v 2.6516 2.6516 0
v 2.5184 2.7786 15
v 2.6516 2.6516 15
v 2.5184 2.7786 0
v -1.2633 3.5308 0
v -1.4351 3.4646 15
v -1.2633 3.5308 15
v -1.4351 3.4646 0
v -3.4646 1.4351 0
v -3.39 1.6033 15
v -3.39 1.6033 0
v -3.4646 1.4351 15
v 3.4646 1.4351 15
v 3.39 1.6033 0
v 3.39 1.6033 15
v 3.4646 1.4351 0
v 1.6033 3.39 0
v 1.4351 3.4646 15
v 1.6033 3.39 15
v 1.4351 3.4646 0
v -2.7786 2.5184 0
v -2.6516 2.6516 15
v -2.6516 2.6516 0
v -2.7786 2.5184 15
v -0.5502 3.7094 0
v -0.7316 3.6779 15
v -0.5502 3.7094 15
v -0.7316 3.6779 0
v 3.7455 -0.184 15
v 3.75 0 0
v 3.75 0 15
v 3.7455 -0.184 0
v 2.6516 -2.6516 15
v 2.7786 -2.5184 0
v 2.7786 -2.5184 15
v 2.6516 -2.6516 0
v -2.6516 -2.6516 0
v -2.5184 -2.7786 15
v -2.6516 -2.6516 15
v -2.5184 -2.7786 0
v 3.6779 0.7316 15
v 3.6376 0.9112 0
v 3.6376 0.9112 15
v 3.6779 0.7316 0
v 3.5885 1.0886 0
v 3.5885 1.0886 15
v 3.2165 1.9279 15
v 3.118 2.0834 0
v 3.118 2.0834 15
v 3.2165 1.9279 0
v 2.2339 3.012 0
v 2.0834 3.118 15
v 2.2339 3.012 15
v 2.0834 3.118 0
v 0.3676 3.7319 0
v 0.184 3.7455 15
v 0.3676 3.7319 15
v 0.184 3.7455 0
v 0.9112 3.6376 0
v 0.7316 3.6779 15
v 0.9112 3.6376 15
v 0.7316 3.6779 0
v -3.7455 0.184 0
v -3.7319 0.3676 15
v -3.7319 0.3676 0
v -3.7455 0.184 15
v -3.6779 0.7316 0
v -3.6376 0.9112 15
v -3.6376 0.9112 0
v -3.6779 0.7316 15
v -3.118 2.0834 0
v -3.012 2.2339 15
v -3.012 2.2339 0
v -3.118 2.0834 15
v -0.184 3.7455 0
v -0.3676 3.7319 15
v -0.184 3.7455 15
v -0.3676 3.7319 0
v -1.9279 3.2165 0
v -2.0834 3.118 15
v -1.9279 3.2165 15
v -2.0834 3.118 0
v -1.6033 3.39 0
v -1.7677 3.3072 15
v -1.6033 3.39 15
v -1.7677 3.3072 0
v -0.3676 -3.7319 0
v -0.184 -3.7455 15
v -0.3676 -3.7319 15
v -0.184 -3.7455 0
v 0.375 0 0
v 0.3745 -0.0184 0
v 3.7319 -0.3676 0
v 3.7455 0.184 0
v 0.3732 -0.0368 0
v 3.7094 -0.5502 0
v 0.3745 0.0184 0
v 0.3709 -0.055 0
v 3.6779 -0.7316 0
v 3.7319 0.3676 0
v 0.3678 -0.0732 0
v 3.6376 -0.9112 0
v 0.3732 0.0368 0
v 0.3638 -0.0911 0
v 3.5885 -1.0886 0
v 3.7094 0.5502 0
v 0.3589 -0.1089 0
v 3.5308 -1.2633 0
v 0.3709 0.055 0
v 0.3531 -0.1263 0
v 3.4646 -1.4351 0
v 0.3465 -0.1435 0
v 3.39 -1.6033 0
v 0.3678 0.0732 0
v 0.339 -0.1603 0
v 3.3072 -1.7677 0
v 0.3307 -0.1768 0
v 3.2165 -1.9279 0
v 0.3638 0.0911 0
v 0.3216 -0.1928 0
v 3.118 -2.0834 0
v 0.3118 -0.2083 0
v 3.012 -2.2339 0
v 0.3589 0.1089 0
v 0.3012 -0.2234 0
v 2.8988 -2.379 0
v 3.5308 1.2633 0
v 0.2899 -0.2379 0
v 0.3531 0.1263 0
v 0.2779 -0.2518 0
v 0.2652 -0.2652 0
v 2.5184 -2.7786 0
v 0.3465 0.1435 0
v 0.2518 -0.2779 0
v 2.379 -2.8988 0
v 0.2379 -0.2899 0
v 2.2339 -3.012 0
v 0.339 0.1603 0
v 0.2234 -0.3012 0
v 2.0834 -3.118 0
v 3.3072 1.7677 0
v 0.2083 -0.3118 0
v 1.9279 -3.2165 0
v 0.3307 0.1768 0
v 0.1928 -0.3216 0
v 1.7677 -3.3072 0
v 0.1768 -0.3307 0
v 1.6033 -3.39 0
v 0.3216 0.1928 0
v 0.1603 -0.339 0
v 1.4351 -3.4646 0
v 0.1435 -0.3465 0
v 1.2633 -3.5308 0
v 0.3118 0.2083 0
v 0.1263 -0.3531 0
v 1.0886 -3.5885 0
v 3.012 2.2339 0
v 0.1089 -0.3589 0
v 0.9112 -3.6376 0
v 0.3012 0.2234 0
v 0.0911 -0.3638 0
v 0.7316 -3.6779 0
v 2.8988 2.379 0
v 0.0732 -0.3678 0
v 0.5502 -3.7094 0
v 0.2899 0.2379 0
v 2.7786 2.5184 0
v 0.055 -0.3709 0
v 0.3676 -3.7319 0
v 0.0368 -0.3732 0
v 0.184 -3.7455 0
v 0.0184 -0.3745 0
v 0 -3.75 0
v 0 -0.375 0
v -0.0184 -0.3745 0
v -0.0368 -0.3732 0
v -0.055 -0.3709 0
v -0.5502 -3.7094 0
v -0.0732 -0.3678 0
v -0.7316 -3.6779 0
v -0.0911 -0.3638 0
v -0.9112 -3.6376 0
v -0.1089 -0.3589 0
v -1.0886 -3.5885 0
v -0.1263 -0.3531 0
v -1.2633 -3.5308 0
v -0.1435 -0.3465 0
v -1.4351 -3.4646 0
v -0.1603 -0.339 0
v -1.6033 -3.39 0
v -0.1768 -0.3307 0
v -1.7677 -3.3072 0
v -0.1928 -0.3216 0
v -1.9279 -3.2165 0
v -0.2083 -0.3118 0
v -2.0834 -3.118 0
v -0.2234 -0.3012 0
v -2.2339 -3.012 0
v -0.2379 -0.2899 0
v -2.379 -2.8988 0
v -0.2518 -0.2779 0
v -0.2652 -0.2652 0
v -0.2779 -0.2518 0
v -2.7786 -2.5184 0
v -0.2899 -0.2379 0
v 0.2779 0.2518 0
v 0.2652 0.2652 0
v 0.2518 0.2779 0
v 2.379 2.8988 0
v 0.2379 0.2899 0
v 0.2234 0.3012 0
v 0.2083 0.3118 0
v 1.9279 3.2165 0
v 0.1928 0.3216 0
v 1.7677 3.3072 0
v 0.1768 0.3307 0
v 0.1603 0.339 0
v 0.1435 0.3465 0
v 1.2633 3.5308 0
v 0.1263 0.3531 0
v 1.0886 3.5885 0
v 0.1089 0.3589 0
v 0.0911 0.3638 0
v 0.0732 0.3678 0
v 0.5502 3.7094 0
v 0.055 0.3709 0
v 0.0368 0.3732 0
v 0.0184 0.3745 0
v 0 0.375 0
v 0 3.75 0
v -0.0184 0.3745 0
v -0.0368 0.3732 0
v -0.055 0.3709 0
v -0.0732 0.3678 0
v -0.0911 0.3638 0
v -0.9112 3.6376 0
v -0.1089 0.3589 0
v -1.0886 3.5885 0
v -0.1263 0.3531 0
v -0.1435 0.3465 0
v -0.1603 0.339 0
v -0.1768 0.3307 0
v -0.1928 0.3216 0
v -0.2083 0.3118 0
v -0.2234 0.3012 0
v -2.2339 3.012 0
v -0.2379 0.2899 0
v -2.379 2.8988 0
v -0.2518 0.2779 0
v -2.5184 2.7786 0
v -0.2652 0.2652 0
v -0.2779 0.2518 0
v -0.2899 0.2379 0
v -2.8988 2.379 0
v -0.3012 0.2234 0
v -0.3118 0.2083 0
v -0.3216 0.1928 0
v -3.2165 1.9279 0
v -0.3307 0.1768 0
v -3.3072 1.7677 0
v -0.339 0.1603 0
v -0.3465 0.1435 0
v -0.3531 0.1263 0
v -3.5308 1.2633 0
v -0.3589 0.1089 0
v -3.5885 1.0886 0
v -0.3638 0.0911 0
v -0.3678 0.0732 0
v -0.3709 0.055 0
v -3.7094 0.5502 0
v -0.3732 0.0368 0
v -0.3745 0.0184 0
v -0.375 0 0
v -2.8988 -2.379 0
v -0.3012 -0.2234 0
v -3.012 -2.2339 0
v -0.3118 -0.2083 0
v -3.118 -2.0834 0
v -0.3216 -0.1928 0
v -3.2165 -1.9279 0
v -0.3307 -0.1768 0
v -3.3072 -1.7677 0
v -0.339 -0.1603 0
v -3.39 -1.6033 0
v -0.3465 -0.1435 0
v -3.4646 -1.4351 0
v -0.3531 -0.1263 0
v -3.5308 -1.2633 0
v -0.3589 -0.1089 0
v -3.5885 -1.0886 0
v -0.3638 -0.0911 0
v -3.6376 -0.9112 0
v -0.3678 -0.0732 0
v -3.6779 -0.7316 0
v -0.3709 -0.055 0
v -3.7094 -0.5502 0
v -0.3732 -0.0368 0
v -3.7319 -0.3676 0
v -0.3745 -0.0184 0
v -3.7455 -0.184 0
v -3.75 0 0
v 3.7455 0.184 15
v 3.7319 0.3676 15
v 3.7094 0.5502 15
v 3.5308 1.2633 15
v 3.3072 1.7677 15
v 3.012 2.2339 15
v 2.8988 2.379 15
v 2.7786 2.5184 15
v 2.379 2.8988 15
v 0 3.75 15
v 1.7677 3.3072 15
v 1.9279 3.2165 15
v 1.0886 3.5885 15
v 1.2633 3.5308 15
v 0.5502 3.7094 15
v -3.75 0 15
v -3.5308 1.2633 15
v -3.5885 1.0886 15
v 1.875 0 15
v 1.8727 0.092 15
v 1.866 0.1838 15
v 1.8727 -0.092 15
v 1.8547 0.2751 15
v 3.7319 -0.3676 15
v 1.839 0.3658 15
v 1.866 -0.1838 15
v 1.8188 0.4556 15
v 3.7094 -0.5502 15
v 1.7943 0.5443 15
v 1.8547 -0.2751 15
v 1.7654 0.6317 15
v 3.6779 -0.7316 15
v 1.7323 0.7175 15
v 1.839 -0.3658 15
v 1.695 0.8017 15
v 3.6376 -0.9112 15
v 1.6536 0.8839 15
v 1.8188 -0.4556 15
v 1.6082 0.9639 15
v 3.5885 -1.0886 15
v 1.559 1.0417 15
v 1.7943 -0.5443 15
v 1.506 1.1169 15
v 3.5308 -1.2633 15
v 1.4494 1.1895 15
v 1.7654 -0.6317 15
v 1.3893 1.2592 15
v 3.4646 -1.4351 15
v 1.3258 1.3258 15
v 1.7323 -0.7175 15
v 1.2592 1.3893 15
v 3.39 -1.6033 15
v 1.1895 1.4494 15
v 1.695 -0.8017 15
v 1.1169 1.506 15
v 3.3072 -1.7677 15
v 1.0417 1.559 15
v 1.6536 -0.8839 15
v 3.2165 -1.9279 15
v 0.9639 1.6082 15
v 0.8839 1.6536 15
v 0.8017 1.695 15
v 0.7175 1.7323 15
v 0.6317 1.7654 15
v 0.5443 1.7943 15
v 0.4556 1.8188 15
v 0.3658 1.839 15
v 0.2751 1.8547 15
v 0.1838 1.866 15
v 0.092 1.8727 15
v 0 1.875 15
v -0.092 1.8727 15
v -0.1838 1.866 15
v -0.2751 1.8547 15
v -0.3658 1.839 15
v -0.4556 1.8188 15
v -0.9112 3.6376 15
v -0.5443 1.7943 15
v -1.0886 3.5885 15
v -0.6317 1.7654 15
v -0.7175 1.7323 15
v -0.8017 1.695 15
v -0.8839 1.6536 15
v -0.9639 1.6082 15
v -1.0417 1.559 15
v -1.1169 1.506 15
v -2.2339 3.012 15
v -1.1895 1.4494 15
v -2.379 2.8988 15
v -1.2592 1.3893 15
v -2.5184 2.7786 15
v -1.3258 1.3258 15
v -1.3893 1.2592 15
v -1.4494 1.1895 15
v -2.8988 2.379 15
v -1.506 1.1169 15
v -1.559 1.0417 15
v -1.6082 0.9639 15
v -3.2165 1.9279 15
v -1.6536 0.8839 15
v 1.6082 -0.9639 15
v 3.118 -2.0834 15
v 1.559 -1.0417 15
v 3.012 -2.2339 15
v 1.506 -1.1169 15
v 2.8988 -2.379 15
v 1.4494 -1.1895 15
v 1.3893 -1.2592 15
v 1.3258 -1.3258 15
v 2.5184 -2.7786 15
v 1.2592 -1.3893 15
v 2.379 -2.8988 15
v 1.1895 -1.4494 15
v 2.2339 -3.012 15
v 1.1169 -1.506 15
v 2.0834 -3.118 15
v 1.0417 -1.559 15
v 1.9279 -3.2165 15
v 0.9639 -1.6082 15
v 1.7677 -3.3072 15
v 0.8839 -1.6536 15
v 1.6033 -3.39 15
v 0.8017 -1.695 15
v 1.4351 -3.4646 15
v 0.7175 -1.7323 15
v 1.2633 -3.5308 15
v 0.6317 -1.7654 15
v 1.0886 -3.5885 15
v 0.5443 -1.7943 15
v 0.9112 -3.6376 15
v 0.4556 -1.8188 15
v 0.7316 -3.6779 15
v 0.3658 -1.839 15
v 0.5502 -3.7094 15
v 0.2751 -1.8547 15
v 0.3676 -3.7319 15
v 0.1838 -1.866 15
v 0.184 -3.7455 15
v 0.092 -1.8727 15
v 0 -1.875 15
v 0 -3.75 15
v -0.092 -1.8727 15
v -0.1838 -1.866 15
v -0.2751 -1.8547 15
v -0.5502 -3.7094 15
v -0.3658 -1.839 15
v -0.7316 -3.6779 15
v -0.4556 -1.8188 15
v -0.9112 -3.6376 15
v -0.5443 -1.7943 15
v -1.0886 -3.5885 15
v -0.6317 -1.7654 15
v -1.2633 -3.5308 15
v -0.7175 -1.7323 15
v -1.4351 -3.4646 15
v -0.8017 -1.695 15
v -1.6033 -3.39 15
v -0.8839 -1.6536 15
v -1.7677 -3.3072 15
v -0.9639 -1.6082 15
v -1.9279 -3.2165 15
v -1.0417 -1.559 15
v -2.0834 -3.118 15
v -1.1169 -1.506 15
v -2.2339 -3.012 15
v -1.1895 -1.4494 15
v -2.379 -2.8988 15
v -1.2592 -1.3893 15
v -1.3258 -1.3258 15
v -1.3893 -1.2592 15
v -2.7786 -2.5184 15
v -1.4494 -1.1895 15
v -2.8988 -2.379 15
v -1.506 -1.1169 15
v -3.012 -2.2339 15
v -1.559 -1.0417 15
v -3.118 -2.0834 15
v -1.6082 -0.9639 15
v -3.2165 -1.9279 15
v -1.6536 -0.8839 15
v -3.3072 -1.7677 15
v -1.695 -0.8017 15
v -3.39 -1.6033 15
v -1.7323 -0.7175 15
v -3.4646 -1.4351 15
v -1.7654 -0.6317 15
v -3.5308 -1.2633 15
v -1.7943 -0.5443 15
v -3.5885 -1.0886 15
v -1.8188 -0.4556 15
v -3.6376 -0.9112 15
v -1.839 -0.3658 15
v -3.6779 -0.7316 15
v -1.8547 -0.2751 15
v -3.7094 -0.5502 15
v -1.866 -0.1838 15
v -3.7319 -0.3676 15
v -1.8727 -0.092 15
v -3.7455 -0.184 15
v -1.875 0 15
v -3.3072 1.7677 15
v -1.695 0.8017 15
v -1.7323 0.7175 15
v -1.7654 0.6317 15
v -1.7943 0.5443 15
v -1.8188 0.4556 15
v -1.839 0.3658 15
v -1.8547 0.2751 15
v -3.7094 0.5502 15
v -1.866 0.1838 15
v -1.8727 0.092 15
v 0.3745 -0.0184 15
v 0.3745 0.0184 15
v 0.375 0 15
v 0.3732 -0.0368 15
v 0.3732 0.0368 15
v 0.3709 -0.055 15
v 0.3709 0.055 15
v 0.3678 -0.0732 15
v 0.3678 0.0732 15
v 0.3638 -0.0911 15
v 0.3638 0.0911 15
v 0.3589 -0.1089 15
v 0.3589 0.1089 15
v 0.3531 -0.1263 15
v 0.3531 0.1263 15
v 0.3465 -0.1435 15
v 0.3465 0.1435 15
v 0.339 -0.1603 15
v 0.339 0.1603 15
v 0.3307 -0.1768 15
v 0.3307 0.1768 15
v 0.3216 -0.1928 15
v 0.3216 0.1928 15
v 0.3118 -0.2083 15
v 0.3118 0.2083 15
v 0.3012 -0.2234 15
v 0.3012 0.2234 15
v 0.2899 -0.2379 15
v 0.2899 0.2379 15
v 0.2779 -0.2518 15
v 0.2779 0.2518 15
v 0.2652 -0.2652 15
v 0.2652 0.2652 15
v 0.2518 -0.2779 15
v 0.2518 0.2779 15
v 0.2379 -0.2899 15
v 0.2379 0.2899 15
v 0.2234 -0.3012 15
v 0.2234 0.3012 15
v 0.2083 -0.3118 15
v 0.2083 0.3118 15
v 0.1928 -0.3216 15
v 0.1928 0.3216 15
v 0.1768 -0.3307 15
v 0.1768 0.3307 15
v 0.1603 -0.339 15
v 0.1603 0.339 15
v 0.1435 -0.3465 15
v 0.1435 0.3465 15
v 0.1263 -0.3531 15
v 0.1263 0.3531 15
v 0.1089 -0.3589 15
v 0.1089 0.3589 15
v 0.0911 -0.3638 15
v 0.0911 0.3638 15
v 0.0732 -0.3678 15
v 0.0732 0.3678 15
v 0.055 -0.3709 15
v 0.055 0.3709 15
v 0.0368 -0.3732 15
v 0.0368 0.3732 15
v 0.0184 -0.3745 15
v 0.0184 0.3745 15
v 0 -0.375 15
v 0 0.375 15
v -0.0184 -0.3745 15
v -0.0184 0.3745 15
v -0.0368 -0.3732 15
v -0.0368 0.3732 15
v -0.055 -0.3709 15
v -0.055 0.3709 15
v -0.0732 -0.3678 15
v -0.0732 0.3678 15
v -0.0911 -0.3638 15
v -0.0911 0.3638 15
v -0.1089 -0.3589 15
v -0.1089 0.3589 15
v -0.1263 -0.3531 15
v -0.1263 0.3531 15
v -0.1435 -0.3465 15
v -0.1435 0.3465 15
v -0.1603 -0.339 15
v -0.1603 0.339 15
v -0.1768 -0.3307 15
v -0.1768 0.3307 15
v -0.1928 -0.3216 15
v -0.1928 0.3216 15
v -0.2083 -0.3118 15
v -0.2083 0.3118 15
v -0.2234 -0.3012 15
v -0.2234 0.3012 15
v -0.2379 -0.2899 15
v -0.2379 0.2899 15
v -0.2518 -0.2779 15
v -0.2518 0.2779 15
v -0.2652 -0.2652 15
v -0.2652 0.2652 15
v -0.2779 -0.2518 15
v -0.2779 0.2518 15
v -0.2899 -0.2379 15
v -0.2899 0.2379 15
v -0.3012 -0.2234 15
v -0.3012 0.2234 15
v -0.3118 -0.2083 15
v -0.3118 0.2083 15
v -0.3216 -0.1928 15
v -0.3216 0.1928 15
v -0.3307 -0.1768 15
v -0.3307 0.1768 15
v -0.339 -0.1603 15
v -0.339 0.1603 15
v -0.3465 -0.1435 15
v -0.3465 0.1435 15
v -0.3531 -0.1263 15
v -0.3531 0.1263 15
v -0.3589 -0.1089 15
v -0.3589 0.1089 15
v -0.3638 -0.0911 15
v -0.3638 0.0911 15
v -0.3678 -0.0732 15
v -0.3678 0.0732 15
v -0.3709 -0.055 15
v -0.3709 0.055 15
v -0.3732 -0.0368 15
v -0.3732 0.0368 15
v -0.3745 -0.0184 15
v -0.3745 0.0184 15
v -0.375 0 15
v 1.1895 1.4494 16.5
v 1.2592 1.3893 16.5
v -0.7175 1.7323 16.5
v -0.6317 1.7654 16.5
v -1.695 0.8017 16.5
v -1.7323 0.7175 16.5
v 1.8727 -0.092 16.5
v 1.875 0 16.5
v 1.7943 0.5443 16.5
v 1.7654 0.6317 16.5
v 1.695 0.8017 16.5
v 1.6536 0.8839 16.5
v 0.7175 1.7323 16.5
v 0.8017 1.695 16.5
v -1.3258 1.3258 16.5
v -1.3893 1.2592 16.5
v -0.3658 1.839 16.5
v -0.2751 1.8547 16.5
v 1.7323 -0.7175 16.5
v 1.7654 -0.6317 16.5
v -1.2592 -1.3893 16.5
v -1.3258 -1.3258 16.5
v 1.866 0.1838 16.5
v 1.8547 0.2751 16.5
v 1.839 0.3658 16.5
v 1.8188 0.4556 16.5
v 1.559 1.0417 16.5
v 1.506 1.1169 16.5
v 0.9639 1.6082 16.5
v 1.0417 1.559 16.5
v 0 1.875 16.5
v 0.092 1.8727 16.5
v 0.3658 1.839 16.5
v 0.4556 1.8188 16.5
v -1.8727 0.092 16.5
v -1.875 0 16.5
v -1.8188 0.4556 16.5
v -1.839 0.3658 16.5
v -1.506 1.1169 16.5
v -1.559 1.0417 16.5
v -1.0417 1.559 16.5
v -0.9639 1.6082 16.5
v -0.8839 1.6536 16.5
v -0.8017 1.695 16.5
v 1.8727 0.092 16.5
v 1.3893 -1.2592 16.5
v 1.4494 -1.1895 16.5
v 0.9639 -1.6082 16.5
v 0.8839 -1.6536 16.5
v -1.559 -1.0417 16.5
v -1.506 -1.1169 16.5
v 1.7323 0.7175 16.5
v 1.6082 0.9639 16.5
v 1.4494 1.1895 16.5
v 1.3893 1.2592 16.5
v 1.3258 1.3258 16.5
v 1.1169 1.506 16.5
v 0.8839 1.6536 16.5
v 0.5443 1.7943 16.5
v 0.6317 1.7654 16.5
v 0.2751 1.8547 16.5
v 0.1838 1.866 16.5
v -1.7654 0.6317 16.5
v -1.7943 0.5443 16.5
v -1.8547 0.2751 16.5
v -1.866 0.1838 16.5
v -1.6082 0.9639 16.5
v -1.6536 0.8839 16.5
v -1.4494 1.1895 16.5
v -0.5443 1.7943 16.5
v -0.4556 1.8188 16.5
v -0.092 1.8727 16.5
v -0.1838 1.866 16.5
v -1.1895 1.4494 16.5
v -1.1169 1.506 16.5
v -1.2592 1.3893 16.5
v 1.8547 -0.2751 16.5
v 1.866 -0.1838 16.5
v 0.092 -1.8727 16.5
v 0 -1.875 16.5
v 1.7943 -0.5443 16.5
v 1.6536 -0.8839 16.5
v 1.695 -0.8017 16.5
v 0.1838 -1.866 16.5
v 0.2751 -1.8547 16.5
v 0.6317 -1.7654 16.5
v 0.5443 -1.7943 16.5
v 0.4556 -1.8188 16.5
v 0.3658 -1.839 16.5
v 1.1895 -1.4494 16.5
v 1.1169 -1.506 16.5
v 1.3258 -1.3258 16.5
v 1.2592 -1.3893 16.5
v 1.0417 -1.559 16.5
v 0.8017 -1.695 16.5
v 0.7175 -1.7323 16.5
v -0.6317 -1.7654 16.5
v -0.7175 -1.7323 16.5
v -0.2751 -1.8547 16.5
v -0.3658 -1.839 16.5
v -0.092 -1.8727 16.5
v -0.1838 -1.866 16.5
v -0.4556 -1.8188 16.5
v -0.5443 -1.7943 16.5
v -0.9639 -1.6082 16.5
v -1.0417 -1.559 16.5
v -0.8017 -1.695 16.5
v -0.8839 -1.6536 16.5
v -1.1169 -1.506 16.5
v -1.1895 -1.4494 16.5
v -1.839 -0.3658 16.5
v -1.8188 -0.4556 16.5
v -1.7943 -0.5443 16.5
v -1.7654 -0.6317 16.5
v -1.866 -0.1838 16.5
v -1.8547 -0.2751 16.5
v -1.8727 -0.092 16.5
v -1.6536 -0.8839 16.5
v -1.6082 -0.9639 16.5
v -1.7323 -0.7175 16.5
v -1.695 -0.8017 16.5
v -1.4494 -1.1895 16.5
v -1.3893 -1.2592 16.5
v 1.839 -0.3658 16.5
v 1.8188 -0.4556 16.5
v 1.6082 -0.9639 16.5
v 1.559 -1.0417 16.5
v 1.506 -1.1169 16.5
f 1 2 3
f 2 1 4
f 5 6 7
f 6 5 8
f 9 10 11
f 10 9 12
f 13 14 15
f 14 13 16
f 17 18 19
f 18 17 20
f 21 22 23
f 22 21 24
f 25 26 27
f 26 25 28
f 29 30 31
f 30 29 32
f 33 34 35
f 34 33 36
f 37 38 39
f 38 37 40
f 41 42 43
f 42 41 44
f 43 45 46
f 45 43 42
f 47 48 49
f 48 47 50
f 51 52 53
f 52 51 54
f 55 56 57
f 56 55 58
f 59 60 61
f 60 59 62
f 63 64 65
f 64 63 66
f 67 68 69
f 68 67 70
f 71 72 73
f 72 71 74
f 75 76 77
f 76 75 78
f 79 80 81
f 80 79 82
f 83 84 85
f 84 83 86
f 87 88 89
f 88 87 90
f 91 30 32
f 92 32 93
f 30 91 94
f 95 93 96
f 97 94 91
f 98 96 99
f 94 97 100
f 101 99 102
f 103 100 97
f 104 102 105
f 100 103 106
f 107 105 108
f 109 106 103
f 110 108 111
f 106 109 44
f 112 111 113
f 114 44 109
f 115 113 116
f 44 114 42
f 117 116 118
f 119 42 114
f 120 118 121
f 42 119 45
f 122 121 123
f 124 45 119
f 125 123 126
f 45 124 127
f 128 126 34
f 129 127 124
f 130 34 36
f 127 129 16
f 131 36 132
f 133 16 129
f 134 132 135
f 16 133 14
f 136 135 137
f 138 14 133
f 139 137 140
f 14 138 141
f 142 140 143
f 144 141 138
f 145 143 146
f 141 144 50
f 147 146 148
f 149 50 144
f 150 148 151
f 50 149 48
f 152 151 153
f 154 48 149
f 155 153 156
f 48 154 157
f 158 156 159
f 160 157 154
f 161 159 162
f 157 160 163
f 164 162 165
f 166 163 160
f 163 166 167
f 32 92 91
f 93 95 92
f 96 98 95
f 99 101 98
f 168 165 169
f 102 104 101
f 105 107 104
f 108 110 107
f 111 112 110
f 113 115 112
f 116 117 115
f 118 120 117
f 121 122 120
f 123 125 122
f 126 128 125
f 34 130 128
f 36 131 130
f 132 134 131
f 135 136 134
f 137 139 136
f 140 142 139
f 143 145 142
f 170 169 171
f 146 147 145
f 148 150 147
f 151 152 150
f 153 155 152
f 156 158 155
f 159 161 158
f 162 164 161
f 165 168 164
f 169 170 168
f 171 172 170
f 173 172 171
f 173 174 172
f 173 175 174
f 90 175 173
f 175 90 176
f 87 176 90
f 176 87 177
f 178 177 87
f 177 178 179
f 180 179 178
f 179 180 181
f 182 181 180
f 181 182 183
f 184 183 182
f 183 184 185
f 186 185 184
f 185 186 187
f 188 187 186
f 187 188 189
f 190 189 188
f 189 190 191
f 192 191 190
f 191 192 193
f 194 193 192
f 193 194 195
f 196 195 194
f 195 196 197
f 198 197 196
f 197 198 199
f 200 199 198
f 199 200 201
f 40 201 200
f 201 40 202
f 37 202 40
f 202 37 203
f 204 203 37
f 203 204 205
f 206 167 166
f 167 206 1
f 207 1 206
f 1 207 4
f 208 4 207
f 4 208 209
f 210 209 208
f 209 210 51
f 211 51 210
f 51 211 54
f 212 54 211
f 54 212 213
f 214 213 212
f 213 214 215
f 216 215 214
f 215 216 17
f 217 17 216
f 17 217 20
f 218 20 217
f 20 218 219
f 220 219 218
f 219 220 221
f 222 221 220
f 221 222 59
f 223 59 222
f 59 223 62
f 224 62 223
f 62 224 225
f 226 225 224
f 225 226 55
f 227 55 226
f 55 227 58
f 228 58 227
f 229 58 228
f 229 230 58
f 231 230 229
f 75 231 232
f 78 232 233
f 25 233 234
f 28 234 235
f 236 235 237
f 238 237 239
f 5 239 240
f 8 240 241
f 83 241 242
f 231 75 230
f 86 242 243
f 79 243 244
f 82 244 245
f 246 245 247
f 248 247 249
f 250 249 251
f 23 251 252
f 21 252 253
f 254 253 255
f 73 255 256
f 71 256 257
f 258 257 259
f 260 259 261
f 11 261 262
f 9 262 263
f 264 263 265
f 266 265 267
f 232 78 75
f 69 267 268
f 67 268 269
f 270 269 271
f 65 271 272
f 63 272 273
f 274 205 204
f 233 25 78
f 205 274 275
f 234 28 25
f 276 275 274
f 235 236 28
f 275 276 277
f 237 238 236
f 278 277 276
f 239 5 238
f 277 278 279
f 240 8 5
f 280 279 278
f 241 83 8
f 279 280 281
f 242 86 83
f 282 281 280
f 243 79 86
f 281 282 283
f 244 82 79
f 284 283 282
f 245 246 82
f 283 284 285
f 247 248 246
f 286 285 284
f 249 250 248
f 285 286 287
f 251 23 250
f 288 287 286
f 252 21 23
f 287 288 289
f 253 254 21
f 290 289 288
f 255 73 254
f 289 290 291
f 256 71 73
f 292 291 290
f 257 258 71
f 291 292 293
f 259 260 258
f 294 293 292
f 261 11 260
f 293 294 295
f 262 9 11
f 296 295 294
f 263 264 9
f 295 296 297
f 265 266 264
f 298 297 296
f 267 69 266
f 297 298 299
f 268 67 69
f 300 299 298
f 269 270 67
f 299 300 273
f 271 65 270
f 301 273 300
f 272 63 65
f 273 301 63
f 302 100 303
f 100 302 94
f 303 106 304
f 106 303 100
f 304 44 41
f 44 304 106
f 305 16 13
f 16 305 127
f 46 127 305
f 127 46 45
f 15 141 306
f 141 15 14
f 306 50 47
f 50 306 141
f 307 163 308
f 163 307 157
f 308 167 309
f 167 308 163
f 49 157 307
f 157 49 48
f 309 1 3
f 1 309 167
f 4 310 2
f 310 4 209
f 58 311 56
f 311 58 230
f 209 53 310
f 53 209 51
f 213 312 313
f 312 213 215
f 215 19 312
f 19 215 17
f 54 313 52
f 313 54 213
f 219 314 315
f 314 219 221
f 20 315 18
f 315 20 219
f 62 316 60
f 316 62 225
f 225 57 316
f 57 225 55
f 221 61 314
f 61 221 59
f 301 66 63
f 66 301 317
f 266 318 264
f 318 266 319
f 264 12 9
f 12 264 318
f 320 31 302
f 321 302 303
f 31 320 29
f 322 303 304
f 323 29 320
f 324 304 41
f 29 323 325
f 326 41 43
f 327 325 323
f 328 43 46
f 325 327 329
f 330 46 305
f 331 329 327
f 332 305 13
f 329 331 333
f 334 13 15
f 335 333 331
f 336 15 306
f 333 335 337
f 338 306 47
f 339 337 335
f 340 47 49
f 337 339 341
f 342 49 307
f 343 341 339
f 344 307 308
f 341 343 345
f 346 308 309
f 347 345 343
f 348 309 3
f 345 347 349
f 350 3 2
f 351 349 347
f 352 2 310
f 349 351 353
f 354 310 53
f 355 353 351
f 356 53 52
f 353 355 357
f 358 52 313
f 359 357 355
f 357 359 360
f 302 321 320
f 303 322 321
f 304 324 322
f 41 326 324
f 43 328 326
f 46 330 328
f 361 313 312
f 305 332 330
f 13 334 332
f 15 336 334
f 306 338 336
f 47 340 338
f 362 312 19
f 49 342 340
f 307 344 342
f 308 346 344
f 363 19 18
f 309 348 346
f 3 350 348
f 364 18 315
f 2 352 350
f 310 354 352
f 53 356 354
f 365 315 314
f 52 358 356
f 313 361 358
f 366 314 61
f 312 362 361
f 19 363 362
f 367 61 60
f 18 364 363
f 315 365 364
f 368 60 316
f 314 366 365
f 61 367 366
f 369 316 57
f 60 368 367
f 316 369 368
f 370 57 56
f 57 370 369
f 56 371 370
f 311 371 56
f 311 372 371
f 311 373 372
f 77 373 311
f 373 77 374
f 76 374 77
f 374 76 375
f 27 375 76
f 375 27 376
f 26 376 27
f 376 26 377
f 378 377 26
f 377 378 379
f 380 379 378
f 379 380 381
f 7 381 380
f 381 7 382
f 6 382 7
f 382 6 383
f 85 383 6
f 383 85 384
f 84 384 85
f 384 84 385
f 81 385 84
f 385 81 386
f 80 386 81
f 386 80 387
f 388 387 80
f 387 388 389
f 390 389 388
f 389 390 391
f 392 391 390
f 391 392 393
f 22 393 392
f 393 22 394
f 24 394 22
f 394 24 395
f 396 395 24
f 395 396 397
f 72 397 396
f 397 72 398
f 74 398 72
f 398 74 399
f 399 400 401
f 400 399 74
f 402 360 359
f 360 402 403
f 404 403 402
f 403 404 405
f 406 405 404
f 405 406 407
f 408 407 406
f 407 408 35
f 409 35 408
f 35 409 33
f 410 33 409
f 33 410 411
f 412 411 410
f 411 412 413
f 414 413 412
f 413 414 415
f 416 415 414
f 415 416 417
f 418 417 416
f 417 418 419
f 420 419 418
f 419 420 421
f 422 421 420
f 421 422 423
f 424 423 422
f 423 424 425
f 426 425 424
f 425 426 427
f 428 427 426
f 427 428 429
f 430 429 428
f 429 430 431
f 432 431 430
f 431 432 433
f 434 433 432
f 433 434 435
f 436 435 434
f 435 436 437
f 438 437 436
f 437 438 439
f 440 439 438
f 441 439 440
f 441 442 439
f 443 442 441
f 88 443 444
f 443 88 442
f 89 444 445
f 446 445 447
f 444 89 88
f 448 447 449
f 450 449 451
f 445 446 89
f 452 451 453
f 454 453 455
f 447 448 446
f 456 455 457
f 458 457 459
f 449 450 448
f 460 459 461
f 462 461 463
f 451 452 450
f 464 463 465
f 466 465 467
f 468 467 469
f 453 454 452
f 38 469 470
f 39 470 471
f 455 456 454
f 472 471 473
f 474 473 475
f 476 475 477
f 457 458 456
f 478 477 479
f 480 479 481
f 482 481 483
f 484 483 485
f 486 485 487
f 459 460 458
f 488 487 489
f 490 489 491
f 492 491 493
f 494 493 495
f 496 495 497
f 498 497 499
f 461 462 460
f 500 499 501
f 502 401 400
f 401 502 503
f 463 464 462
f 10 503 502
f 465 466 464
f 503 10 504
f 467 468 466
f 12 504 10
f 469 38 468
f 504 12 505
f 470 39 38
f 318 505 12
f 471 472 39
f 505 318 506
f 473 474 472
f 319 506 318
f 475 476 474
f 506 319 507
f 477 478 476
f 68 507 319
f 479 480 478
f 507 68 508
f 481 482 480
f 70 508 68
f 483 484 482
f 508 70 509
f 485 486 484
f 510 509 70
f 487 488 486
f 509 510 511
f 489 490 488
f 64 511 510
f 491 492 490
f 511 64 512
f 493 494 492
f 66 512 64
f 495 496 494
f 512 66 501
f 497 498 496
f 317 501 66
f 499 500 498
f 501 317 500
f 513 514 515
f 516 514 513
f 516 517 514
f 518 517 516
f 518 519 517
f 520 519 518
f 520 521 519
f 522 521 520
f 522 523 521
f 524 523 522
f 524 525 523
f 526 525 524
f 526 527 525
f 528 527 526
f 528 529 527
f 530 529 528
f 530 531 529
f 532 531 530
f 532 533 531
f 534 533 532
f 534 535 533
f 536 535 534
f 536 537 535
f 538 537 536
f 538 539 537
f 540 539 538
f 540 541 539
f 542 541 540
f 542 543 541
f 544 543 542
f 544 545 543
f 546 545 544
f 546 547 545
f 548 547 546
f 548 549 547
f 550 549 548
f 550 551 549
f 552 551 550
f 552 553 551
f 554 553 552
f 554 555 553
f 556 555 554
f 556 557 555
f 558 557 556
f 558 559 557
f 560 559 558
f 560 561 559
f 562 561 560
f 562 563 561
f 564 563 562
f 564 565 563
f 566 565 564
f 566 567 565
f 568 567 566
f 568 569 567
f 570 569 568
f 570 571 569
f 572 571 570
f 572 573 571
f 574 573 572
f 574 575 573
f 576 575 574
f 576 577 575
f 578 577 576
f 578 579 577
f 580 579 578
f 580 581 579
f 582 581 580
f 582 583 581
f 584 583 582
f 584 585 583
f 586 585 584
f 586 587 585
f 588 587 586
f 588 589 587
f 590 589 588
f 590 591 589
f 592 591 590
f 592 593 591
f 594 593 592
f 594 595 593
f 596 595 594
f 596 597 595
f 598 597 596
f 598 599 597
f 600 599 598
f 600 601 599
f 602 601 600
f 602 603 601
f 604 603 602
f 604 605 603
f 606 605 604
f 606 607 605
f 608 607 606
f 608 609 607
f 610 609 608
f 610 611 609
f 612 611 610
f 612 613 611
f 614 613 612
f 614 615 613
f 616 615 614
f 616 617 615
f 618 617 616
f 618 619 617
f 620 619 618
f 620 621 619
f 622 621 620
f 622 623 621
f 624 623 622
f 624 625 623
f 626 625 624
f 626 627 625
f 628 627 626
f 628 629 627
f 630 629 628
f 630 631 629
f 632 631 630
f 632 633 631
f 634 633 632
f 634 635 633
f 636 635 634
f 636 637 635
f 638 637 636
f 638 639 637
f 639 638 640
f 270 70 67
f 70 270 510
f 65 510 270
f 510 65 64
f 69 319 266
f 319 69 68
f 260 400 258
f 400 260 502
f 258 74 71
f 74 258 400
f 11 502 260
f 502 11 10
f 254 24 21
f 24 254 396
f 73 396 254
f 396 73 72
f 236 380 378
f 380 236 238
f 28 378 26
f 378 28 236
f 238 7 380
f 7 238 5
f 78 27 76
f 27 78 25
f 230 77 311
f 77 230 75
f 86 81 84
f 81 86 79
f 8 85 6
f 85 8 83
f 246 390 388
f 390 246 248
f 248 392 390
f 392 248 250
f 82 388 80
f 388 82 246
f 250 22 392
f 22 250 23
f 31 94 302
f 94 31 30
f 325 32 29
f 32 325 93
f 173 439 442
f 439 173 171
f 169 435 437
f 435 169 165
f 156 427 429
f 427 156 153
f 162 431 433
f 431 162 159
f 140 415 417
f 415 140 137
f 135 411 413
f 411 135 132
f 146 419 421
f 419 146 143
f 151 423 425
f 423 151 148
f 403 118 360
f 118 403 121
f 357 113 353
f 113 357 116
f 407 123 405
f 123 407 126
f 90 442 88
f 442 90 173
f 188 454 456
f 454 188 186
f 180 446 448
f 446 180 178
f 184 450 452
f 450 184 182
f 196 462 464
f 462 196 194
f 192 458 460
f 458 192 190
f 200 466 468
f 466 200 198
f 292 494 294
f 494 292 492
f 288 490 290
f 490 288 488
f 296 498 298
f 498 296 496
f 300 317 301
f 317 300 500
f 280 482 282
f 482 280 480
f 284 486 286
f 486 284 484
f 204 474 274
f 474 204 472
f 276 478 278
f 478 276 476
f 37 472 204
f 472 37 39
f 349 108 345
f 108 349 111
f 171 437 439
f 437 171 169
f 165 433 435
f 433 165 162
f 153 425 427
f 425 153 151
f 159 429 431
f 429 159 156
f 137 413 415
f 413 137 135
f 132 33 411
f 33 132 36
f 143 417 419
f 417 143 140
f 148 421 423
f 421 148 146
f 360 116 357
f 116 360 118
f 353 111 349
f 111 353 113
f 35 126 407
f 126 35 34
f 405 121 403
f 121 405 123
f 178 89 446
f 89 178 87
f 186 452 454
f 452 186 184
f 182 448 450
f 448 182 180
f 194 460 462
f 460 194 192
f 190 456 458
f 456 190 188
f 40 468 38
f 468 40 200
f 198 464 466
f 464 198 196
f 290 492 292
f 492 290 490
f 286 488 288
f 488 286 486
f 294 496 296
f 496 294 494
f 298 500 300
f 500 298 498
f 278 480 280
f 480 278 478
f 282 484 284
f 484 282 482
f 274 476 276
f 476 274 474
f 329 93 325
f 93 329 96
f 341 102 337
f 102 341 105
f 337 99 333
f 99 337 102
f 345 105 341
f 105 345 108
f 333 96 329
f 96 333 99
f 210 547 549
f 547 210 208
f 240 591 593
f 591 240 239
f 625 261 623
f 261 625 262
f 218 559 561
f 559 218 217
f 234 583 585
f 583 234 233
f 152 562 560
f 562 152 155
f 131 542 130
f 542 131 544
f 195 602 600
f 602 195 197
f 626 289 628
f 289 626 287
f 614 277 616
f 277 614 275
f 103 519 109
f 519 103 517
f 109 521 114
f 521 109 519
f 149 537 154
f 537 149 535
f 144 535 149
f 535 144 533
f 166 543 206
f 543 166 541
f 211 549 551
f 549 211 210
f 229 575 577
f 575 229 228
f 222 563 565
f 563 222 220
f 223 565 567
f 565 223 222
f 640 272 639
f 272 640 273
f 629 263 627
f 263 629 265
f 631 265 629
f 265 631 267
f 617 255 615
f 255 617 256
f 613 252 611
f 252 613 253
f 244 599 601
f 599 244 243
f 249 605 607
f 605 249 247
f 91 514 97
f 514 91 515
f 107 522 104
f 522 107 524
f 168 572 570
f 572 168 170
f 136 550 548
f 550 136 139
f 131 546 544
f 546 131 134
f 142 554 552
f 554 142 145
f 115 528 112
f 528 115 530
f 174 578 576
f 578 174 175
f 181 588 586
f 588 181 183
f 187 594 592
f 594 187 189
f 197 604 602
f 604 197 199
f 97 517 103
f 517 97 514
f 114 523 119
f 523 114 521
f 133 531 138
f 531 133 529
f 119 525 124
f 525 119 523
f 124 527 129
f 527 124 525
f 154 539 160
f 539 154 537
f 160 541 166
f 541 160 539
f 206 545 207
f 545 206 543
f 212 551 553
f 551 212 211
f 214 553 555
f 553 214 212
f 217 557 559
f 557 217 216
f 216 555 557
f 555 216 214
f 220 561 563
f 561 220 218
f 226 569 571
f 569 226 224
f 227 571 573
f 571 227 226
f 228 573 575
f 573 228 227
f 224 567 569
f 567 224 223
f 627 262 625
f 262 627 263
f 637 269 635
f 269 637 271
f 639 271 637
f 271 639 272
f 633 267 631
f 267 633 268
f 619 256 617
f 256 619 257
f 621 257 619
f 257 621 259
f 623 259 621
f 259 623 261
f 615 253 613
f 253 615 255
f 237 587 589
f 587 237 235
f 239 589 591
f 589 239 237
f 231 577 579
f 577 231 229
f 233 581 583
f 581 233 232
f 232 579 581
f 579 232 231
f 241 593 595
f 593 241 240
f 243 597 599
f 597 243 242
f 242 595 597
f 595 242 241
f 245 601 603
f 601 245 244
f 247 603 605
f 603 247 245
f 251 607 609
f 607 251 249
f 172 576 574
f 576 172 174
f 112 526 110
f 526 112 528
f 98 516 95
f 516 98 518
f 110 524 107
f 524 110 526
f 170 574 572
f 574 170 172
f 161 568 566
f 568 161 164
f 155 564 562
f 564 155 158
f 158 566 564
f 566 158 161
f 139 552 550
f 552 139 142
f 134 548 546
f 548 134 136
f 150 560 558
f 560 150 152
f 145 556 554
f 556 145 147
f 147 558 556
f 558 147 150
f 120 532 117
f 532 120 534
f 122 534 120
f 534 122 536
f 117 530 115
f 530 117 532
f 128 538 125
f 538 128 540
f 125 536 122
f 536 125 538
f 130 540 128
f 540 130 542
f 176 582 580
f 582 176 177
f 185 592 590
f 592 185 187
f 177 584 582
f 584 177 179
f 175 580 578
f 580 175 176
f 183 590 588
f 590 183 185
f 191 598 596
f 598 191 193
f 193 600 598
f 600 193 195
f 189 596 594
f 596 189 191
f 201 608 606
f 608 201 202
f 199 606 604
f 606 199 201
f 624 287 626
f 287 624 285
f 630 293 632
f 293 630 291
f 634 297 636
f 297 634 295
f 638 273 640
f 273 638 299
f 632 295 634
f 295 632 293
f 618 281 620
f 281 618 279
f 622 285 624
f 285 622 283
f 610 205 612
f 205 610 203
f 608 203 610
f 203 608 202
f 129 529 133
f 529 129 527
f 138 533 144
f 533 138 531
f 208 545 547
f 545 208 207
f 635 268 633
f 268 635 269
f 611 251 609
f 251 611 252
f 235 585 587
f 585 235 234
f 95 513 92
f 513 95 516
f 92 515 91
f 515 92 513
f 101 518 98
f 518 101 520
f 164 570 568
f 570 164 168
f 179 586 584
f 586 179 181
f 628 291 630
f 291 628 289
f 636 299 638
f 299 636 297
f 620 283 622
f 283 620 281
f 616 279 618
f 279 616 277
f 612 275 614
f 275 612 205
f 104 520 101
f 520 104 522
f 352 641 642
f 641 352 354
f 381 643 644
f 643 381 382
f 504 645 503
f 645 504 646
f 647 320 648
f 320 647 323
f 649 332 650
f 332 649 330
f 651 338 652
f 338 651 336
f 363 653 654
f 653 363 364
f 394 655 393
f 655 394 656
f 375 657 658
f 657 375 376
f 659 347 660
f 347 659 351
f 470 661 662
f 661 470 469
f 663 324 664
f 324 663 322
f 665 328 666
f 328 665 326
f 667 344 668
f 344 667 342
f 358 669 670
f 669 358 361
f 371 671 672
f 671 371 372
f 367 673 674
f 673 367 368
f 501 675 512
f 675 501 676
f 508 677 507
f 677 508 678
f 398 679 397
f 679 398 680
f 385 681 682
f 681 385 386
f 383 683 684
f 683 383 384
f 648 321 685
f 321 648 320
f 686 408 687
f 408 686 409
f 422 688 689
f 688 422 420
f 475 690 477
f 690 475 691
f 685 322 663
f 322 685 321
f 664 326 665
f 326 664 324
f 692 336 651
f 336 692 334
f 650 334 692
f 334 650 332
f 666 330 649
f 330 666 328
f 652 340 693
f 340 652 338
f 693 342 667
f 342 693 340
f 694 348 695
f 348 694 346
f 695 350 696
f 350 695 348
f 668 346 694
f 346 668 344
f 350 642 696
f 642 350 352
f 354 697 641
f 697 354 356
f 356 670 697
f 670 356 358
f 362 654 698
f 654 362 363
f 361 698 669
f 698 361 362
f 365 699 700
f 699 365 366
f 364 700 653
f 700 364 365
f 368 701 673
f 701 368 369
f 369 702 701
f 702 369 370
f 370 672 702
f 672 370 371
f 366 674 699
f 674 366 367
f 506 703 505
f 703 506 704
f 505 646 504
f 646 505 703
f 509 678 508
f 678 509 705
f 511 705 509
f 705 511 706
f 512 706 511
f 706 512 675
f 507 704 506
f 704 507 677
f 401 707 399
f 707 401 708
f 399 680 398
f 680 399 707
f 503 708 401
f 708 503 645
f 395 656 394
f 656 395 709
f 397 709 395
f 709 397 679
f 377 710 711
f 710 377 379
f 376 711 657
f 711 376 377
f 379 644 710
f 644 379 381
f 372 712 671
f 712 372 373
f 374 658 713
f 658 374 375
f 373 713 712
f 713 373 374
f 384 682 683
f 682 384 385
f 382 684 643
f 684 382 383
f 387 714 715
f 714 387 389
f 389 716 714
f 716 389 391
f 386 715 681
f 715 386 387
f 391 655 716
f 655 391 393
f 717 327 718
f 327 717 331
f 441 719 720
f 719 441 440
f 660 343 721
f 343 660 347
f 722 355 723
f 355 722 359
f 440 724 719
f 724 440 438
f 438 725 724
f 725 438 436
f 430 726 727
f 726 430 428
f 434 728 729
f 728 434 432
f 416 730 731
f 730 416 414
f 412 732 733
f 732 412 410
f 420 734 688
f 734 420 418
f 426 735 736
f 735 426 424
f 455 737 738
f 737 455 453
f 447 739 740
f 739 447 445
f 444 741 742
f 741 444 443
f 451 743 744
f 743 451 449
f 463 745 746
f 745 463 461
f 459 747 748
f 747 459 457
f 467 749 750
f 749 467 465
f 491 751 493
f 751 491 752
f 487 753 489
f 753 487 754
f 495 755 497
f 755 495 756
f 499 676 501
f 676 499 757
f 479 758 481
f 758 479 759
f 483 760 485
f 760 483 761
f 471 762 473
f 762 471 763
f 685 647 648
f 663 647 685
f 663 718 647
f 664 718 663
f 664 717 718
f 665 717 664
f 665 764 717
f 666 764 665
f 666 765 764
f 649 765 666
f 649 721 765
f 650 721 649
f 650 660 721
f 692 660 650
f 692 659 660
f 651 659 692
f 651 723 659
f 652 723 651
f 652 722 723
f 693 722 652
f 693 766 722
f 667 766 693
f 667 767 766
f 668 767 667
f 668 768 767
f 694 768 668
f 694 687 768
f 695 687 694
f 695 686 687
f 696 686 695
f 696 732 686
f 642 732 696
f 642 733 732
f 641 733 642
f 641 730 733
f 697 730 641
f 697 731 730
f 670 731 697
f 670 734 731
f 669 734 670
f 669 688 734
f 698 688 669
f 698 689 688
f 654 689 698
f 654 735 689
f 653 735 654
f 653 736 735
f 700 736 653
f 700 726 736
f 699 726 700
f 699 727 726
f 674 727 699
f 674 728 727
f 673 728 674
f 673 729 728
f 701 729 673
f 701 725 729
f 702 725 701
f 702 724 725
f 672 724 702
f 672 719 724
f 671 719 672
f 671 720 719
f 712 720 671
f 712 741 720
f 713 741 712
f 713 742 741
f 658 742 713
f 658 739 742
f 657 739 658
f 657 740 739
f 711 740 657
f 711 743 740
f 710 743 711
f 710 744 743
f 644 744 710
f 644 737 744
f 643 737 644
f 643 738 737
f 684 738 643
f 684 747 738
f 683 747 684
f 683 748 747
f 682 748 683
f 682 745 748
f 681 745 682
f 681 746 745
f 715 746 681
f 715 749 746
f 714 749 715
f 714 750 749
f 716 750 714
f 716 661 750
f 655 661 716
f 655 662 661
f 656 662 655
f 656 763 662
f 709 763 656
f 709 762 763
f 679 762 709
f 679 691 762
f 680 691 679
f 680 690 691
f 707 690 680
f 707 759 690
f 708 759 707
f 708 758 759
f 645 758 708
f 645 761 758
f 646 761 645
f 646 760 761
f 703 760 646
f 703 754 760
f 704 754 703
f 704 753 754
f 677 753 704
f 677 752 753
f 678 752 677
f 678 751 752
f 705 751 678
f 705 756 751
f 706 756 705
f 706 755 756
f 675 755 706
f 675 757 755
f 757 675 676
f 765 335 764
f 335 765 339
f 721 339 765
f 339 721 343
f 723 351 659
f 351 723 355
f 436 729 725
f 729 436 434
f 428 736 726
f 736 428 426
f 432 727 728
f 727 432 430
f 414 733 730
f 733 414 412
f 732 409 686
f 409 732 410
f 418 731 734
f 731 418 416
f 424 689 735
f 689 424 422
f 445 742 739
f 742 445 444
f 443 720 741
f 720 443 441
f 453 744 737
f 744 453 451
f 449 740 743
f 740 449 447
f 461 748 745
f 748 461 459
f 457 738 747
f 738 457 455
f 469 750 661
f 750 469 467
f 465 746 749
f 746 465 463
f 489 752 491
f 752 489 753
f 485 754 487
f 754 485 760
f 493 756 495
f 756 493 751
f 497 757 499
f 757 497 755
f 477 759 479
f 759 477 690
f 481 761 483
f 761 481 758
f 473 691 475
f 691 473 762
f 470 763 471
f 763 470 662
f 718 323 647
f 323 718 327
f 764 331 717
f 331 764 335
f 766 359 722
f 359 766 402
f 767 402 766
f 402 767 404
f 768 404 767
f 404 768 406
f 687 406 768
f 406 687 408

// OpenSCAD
// Generated by SolidPython 1.1.3 on 2023-04-08 02:27:49
$fn =128;


union() {
	difference() {
		cylinder(h = 15, r = 3.7500000000);
		cylinder(h = 15, r = 0.3750000000);
	}
	translate(v = [0, 0, 15]) {
		cylinder(h = 1.5000000000, r = 1.8750000000);
	}
}
